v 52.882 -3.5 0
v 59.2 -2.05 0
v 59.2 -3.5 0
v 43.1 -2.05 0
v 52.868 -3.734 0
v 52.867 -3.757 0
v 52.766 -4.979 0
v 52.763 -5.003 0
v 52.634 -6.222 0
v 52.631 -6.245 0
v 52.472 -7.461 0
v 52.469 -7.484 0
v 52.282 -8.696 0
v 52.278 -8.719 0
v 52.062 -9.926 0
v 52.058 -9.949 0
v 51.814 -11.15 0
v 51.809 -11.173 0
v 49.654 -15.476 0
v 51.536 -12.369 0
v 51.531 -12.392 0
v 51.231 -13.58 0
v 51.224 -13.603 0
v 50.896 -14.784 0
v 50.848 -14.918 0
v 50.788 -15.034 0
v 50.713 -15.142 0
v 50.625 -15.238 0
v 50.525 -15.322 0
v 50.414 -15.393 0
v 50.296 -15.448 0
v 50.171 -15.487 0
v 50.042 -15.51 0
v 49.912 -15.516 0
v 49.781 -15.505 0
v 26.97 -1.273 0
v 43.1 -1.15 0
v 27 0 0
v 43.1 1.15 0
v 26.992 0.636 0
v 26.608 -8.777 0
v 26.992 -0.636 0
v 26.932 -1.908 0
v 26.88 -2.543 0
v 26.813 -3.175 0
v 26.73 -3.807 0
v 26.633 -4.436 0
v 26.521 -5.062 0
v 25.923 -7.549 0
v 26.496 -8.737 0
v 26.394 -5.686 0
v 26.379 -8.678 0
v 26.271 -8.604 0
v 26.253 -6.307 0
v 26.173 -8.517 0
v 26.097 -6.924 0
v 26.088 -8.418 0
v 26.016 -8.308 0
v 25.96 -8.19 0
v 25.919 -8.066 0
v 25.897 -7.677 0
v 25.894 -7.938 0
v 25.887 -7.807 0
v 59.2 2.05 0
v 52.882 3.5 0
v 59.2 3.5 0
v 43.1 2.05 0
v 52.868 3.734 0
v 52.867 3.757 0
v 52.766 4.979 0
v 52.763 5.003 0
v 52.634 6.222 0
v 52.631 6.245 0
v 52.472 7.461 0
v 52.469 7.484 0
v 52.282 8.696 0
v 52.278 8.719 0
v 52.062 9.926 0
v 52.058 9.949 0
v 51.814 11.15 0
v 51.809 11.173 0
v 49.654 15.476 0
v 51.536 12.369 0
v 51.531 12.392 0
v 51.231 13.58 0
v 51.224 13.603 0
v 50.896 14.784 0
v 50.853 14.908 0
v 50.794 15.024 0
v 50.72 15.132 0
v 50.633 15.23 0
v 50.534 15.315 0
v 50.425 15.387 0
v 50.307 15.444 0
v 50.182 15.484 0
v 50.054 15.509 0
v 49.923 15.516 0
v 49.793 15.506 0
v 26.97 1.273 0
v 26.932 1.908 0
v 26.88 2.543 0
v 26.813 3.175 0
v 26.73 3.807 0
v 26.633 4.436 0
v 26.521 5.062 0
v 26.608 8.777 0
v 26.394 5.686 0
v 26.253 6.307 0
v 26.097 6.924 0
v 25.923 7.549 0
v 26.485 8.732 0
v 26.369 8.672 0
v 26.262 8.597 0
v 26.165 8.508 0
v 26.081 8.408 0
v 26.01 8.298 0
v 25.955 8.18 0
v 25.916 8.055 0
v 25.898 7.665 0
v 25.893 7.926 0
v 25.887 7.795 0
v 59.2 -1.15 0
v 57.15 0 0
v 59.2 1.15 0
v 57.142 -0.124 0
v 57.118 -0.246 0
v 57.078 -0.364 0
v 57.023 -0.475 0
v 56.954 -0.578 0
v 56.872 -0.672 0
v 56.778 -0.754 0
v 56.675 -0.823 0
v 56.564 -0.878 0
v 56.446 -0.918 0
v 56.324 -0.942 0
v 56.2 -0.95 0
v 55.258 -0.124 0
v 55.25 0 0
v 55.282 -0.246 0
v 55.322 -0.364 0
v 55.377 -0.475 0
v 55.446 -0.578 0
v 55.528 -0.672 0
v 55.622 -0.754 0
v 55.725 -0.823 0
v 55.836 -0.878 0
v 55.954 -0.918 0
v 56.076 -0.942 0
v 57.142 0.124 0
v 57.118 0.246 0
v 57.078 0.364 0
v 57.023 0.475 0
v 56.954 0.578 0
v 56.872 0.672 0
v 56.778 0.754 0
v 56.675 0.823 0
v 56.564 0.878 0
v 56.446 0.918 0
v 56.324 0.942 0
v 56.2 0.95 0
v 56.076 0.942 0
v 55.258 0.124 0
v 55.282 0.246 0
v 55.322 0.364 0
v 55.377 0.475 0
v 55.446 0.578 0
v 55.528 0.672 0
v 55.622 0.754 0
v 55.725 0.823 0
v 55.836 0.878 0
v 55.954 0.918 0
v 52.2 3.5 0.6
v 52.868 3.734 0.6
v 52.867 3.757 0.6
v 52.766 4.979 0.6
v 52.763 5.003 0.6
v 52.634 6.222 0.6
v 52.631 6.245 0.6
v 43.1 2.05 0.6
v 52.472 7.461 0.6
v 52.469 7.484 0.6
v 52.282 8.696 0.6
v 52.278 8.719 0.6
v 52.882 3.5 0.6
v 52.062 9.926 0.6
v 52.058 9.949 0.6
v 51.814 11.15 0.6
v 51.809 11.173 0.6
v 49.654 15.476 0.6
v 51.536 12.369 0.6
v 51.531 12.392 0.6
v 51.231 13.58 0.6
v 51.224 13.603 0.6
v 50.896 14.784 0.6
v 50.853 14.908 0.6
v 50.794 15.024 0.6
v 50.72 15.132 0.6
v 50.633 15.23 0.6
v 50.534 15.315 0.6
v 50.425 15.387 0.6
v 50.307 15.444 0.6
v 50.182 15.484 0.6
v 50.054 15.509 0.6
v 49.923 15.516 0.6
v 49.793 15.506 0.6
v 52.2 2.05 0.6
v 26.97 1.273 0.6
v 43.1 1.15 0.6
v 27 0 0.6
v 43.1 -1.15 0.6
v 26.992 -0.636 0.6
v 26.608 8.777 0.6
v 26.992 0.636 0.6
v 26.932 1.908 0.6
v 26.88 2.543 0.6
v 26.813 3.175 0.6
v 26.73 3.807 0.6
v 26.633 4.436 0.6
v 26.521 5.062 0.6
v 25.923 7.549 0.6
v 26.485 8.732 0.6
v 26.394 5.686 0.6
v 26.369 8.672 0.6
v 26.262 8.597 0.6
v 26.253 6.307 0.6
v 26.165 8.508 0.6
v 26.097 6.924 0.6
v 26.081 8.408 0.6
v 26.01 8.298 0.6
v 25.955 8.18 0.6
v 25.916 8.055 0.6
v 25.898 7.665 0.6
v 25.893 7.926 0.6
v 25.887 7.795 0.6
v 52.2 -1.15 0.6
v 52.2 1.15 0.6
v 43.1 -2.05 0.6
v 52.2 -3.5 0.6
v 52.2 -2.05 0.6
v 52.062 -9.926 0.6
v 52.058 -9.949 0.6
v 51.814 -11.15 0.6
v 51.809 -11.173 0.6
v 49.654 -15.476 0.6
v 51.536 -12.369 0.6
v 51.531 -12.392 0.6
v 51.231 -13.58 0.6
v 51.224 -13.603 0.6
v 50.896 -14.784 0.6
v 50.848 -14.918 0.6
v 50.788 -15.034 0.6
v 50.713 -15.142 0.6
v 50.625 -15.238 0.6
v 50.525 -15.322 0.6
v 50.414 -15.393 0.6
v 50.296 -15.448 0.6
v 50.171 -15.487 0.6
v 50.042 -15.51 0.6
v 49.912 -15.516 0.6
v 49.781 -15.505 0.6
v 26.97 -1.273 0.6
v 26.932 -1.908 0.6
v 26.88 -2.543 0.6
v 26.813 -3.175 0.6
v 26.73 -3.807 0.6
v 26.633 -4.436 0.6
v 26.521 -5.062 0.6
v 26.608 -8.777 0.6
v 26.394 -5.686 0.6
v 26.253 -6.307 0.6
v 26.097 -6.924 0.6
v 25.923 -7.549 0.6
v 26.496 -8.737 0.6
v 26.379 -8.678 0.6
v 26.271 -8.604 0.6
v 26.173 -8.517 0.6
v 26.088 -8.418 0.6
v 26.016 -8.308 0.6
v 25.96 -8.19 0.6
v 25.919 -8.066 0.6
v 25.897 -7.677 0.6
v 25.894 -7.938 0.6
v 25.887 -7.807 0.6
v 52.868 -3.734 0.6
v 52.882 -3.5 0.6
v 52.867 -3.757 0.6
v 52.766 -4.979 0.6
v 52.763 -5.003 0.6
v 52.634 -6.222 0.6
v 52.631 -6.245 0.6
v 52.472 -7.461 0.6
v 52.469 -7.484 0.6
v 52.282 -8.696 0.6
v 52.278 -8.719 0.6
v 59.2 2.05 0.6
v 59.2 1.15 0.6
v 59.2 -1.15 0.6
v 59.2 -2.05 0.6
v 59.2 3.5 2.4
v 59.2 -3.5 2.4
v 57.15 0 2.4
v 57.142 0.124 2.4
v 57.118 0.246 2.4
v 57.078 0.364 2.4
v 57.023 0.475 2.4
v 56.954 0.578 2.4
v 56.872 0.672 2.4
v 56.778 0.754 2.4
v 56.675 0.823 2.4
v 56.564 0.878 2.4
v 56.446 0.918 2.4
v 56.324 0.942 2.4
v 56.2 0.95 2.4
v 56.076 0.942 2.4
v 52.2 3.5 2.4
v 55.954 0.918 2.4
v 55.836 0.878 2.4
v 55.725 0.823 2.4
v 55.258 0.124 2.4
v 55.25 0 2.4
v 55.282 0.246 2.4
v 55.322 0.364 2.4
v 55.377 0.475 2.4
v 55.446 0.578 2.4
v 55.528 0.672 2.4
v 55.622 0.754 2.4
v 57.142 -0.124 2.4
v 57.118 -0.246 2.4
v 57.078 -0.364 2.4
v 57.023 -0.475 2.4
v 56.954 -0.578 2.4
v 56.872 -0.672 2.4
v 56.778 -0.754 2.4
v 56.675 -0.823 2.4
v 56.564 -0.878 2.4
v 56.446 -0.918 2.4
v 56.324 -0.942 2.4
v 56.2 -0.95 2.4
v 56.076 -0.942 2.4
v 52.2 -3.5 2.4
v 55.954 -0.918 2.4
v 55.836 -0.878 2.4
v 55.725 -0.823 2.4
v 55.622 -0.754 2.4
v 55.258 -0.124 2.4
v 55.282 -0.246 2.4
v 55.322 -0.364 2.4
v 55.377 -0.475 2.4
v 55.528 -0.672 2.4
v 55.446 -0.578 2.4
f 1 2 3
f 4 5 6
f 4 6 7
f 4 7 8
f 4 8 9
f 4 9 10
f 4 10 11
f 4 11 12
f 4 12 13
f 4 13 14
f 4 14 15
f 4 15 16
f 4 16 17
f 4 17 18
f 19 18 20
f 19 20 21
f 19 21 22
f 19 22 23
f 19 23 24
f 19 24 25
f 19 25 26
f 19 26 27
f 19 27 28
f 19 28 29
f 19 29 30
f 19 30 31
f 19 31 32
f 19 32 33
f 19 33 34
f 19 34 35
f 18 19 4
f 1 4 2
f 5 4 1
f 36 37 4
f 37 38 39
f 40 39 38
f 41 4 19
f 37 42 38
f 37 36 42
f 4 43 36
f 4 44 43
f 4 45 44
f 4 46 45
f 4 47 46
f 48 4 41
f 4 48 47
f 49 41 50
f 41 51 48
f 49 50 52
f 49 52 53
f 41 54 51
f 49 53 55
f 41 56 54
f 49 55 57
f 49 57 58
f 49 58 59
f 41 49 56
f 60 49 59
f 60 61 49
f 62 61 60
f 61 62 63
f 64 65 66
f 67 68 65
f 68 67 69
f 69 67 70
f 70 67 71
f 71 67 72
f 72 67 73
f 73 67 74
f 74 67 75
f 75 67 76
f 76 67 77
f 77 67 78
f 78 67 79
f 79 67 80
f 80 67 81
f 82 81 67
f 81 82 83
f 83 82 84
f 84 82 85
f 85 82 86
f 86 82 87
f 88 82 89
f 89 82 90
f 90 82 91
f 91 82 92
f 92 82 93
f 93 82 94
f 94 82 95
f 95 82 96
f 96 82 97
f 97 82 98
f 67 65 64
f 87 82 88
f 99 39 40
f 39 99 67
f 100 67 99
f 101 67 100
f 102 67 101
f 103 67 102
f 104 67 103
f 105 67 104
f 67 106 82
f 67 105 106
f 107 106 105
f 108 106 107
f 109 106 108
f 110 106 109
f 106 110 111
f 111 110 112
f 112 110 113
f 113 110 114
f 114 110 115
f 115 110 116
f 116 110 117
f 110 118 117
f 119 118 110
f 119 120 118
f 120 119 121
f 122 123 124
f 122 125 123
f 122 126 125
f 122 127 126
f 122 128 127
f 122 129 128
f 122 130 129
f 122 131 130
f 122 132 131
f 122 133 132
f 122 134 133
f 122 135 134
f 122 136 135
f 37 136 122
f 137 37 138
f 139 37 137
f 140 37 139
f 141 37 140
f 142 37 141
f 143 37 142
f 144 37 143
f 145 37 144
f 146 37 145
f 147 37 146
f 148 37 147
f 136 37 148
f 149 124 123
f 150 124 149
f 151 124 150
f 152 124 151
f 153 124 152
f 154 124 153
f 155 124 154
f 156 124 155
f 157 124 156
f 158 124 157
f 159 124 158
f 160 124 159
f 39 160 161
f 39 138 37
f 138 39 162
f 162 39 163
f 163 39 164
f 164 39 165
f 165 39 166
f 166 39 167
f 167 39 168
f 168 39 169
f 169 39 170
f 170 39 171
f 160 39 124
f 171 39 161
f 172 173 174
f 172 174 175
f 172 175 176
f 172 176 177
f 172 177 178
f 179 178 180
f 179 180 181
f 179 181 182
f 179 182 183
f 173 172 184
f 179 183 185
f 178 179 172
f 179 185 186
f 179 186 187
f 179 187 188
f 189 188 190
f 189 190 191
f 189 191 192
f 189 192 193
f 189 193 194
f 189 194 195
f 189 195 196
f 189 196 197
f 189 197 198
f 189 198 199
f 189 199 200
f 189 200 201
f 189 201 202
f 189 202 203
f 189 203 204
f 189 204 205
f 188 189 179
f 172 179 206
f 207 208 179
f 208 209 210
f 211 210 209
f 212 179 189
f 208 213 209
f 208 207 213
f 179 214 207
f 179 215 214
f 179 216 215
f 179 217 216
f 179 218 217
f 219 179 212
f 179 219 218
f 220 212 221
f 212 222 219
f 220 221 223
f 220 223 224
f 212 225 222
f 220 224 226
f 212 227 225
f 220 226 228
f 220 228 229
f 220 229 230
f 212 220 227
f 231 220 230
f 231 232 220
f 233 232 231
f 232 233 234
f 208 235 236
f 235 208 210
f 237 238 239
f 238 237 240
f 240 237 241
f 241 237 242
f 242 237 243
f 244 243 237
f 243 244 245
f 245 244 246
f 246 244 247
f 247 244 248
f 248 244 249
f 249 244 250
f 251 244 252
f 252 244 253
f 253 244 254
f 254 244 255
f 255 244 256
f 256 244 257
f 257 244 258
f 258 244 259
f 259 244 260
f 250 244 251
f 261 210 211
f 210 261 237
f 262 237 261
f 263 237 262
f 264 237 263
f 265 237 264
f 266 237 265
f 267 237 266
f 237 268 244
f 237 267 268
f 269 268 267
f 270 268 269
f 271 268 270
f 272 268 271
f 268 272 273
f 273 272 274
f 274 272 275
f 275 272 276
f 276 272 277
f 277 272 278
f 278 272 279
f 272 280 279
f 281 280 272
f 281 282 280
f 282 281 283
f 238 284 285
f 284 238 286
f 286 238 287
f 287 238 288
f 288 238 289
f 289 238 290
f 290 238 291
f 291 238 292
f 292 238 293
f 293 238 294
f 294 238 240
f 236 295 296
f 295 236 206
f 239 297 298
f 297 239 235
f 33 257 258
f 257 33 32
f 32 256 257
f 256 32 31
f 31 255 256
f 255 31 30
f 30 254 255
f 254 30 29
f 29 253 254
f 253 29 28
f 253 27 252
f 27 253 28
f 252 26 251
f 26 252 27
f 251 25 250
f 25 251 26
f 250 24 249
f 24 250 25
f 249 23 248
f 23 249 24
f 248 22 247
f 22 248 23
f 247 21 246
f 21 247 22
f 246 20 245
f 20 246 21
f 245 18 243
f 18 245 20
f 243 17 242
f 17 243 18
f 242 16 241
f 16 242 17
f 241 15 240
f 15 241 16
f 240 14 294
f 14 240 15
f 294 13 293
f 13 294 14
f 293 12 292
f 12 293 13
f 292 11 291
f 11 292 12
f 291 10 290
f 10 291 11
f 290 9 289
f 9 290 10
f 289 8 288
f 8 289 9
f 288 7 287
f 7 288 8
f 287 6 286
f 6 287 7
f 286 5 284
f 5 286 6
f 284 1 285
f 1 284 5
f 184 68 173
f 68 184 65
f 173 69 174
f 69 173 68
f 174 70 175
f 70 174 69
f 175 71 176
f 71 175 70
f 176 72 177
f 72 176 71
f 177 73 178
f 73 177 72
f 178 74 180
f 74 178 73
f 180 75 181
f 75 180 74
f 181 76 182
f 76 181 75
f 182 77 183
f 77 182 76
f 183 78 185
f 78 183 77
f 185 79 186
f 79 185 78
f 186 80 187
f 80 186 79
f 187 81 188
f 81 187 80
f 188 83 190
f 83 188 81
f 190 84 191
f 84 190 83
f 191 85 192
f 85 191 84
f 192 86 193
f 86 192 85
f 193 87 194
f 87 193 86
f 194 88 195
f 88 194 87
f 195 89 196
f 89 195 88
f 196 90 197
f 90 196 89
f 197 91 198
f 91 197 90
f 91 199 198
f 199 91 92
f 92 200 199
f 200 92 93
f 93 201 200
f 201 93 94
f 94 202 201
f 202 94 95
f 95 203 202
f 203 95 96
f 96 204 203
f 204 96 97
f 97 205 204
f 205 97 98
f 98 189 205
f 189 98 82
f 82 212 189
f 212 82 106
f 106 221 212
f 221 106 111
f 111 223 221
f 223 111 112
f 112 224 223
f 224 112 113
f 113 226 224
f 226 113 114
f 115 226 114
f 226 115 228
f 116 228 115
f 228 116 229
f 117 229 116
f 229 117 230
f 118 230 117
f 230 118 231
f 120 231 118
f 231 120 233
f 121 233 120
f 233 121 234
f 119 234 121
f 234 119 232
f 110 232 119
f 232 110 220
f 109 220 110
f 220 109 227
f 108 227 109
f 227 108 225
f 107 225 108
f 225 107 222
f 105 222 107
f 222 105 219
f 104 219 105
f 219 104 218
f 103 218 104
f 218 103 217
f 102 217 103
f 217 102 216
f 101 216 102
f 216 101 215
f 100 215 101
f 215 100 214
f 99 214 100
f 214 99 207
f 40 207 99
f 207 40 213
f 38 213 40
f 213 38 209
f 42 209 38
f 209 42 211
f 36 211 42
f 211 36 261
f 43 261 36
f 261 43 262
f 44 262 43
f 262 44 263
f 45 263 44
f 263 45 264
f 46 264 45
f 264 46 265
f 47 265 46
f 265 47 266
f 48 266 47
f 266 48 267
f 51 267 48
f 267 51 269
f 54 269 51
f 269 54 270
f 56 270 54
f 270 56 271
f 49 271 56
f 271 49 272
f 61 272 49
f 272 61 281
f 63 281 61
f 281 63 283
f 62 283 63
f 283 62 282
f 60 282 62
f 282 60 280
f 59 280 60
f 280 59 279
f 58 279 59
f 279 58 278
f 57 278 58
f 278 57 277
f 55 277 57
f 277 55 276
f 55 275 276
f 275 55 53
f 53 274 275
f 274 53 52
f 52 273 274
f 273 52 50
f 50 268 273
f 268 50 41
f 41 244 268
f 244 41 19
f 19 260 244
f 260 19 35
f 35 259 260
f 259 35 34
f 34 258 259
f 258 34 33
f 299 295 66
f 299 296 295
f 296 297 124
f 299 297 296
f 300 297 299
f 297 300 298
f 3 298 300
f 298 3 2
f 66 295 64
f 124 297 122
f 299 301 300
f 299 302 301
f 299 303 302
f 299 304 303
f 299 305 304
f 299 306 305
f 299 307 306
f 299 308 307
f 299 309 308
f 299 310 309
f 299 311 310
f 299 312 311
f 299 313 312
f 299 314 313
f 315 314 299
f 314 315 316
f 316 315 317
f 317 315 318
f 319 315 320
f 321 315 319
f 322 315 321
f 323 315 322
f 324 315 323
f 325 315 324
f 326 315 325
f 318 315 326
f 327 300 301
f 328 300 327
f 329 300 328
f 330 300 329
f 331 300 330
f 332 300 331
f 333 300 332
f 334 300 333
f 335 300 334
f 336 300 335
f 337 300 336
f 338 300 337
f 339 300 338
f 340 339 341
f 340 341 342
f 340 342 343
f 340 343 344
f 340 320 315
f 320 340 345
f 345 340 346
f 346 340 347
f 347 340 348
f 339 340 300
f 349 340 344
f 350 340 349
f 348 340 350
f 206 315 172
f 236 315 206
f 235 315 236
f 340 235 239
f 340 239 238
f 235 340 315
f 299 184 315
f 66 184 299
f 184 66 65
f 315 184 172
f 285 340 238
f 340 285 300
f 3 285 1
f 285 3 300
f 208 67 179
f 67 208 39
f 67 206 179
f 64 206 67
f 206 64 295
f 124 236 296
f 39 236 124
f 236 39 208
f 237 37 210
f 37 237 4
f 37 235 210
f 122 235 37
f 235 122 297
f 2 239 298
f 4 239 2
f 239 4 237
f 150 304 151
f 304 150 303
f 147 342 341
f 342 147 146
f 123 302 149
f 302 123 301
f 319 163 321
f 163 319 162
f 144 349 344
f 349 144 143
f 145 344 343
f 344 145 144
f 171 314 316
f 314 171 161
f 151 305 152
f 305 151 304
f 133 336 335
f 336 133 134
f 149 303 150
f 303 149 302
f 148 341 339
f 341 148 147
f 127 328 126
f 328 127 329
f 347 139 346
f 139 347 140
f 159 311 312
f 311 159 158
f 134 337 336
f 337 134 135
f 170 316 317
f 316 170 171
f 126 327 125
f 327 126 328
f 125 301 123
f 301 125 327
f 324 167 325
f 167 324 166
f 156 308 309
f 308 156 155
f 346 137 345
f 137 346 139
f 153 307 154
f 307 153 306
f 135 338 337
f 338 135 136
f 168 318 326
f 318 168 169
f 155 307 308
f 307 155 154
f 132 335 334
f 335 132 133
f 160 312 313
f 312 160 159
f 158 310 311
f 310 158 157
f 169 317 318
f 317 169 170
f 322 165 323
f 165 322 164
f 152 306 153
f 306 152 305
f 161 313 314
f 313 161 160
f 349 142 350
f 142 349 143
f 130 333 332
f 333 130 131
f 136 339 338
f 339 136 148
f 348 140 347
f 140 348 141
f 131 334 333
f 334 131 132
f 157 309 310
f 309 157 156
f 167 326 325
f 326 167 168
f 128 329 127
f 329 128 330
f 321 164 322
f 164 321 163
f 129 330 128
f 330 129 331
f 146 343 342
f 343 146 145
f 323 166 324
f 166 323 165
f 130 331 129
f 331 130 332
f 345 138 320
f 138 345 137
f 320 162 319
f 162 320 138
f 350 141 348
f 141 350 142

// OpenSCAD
// file: parameters.scad
// =============================================================================
// Gen-BC — nightly 2026-10-03 (physics_scorer, honest magpylib watts)
// Clocking 0 deg (magnets N facing S / through-magnetised stack) + D-flat keyed bore + index notch + flip-symmetric braces/bolts.
// Windable 2-piece bobbin; turns = physics_scorer turns_fit; copper only between flanges.
// former_web = 3.60 mm (taller copper vs Gen-BA 2.46) — gap grows with web (honest Bz tradeoff).
// =============================================================================
topology            = "mid_rotor";

// --- Wire / winding (physics_scorer winding-fit) -------------------------------
wire_awg            = 26;
wire_od             = 0.45;     // insulated OD mm (bare 0.405)
fill_realistic      = 0.60;     // insulated-wire area / window, hand-wound layered
turns               = 114;       // = physics_scorer turns_fit (do NOT raise)
coil_former_type    = "bobbin";
coil_core_inset     = 8.40;     // radial copper build: hub = copper boundary inset by this
wind_build_axial    = 0.0;      // nothing proud of the flanges
wind_build_radial   = 0.0;

// --- Bobbin (base + lid) ---------------------------------------------------------
coil_id_r           = 28.00;    // copper boundary sector (over the magnet track)
coil_od_r           = 52.00;
span_deg            = 32.42;    // = pitch - 2*asin((wall+0.85)/coil_id_r) -> >=1.2 mm stator web
former_web          = 3.60;     // copper height between flanges
flange_t            = 0.60;
wall                = 1.00;     // flange lip beyond copper
former_bare_h       = former_web + 2 * flange_t;
coil_envelope_h     = former_bare_h + 2 * wind_build_axial;
tab_w               = 7.0;
tab_len             = 7.0;
tab_h               = former_bare_h / 2;
pin_d               = 1.9;      // 1.75 mm filament locating pin
coil_mount_r        = coil_od_r + 0.2 + 4.0;
lead_y              = 1.6;
lead_slot_w         = 0.9;
lead_groove_d       = 0.6;

// --- Gap -------------------------------------------------------------------------
run_clear           = 0.50;     // rotor face -> flange
gap_spacer_h        = run_clear + wind_build_axial;
m2m                 = coil_envelope_h + 2 * run_clear;

// --- Stator ----------------------------------------------------------------------
coil_stations       = 9;        // per stator; x2 stators
bay_clear           = 0.25;
bay_depth           = former_bare_h;
stator_back_web     = 2.0;
stator_thick        = bay_depth + stator_back_web;
stator_od           = 160.0;
shaft_clear_stator  = 14.0;     // stator is static; shaft only

// --- Rotor(s) --------------------------------------------------------------------
magnet_Br           = 1.43;     // N52
halbach_magnetisation = "diametric"; // O5x5 assist magnets MUST be DIAMETRICALLY magnetised (tangential)
rotor_b_same_axis   = true;     // same-index magnets share one axis: N faces S across the gap
large_pocket_d      = 20.3;
small_pocket_d      = 5.3;
pocket_h            = 5.2;
large_n             = 8;
R_large             = 40.0;
R_small_inner       = 26.0;
R_small_mid         = 40.0;
R_small_outer       = 56.0;
carrier_od          = 158.0;
mid_carrier_thick   = 12.0;
hub_h               = 10.0;
hub_od              = 30.0;
rotor_b_offset_deg  = 0.0;      // CLOCKING: magnets directly opposite
shaft_key           = "dflat";
dflat_depth         = 0.5;      // 8 mm shaft with 0.5 mm flat (7.5 across flat)
index_notch_d       = 3.0;

// --- Modular MAX interface (Gen-E family) -----------------------------------------
shaft_bore          = 8.35;
dflat_x             = 4.0 - dflat_depth + (shaft_bore - 8.0) / 2;
bearing_d           = 21.85;
bearing_h           = 7.2;
m3_clear            = 3.5;
bolt_r_inner        = 18.0;
bolt_n_inner        = 4;
bolt_inner_angles   = [22.5, -22.5, 157.5, 202.5];  // between poles, flip-symmetric
flange_bolt_r       = 72.0;
flange_bolt_n       = 6;
brace_r             = 68.0;
brace_d             = 4.3;
brace_n             = 4;
brace_angles        = [45, 135, 225, 315];          // flip-symmetric

spacer_pad_od       = 14.0;
spacer_pad_id       = m3_clear;
endbell_od          = 160.0;
endbell_thick       = 8.0;
endbell_shaft_clear = 10.0;
plate_max_mm        = 410;

$fn = 64;
// main file
// Gen-BC — bobbin LID (top flange + locating tab). Print x18, flange face DOWN on the bed.
// CA-glue onto the hub top BEFORE winding. Tab is the lap joint into the stator tab pocket; 1.75 mm
// filament pin through pin hole + stator ledge, trim flush. Lead slots carry both leads flush.
include <parameters.scad>;
$fn = 48;
module sector_2d(r_in, r_out, ang) {
    polygon([
        for (a = [-ang/2 : ang/24 : ang/2]) [r_in*cos(a), r_in*sin(a)],
        for (a = [ang/2 : -ang/24 : -ang/2]) [r_out*cos(a), r_out*sin(a)]
    ]);
}
module footprint_2d() { offset(r=wall) sector_2d(coil_id_r, coil_od_r, span_deg); }
module hub_2d()       { offset(delta=-coil_core_inset) sector_2d(coil_id_r, coil_od_r, span_deg); }

difference() {
    union() {
        linear_extrude(flange_t) footprint_2d();
        // tab block (outside the copper, r > coil_od_r) reaches down to former mid-height
        translate([coil_od_r + 0.2, -tab_w/2, 0]) cube([tab_len, tab_w, tab_h]);
    }
    translate([coil_mount_r, 0, -0.1]) cylinder(d=pin_d, h=tab_h + 1);
    // two lead grooves on the outer (rotor-facing) side, depth lead_groove_d
    for (y = [lead_y, -lead_y])
        translate([coil_od_r - coil_core_inset - 0.5, y - lead_slot_w/2, -0.1])
            cube([coil_core_inset + tab_len + 2, lead_slot_w, lead_groove_d + 0.1]);
}
